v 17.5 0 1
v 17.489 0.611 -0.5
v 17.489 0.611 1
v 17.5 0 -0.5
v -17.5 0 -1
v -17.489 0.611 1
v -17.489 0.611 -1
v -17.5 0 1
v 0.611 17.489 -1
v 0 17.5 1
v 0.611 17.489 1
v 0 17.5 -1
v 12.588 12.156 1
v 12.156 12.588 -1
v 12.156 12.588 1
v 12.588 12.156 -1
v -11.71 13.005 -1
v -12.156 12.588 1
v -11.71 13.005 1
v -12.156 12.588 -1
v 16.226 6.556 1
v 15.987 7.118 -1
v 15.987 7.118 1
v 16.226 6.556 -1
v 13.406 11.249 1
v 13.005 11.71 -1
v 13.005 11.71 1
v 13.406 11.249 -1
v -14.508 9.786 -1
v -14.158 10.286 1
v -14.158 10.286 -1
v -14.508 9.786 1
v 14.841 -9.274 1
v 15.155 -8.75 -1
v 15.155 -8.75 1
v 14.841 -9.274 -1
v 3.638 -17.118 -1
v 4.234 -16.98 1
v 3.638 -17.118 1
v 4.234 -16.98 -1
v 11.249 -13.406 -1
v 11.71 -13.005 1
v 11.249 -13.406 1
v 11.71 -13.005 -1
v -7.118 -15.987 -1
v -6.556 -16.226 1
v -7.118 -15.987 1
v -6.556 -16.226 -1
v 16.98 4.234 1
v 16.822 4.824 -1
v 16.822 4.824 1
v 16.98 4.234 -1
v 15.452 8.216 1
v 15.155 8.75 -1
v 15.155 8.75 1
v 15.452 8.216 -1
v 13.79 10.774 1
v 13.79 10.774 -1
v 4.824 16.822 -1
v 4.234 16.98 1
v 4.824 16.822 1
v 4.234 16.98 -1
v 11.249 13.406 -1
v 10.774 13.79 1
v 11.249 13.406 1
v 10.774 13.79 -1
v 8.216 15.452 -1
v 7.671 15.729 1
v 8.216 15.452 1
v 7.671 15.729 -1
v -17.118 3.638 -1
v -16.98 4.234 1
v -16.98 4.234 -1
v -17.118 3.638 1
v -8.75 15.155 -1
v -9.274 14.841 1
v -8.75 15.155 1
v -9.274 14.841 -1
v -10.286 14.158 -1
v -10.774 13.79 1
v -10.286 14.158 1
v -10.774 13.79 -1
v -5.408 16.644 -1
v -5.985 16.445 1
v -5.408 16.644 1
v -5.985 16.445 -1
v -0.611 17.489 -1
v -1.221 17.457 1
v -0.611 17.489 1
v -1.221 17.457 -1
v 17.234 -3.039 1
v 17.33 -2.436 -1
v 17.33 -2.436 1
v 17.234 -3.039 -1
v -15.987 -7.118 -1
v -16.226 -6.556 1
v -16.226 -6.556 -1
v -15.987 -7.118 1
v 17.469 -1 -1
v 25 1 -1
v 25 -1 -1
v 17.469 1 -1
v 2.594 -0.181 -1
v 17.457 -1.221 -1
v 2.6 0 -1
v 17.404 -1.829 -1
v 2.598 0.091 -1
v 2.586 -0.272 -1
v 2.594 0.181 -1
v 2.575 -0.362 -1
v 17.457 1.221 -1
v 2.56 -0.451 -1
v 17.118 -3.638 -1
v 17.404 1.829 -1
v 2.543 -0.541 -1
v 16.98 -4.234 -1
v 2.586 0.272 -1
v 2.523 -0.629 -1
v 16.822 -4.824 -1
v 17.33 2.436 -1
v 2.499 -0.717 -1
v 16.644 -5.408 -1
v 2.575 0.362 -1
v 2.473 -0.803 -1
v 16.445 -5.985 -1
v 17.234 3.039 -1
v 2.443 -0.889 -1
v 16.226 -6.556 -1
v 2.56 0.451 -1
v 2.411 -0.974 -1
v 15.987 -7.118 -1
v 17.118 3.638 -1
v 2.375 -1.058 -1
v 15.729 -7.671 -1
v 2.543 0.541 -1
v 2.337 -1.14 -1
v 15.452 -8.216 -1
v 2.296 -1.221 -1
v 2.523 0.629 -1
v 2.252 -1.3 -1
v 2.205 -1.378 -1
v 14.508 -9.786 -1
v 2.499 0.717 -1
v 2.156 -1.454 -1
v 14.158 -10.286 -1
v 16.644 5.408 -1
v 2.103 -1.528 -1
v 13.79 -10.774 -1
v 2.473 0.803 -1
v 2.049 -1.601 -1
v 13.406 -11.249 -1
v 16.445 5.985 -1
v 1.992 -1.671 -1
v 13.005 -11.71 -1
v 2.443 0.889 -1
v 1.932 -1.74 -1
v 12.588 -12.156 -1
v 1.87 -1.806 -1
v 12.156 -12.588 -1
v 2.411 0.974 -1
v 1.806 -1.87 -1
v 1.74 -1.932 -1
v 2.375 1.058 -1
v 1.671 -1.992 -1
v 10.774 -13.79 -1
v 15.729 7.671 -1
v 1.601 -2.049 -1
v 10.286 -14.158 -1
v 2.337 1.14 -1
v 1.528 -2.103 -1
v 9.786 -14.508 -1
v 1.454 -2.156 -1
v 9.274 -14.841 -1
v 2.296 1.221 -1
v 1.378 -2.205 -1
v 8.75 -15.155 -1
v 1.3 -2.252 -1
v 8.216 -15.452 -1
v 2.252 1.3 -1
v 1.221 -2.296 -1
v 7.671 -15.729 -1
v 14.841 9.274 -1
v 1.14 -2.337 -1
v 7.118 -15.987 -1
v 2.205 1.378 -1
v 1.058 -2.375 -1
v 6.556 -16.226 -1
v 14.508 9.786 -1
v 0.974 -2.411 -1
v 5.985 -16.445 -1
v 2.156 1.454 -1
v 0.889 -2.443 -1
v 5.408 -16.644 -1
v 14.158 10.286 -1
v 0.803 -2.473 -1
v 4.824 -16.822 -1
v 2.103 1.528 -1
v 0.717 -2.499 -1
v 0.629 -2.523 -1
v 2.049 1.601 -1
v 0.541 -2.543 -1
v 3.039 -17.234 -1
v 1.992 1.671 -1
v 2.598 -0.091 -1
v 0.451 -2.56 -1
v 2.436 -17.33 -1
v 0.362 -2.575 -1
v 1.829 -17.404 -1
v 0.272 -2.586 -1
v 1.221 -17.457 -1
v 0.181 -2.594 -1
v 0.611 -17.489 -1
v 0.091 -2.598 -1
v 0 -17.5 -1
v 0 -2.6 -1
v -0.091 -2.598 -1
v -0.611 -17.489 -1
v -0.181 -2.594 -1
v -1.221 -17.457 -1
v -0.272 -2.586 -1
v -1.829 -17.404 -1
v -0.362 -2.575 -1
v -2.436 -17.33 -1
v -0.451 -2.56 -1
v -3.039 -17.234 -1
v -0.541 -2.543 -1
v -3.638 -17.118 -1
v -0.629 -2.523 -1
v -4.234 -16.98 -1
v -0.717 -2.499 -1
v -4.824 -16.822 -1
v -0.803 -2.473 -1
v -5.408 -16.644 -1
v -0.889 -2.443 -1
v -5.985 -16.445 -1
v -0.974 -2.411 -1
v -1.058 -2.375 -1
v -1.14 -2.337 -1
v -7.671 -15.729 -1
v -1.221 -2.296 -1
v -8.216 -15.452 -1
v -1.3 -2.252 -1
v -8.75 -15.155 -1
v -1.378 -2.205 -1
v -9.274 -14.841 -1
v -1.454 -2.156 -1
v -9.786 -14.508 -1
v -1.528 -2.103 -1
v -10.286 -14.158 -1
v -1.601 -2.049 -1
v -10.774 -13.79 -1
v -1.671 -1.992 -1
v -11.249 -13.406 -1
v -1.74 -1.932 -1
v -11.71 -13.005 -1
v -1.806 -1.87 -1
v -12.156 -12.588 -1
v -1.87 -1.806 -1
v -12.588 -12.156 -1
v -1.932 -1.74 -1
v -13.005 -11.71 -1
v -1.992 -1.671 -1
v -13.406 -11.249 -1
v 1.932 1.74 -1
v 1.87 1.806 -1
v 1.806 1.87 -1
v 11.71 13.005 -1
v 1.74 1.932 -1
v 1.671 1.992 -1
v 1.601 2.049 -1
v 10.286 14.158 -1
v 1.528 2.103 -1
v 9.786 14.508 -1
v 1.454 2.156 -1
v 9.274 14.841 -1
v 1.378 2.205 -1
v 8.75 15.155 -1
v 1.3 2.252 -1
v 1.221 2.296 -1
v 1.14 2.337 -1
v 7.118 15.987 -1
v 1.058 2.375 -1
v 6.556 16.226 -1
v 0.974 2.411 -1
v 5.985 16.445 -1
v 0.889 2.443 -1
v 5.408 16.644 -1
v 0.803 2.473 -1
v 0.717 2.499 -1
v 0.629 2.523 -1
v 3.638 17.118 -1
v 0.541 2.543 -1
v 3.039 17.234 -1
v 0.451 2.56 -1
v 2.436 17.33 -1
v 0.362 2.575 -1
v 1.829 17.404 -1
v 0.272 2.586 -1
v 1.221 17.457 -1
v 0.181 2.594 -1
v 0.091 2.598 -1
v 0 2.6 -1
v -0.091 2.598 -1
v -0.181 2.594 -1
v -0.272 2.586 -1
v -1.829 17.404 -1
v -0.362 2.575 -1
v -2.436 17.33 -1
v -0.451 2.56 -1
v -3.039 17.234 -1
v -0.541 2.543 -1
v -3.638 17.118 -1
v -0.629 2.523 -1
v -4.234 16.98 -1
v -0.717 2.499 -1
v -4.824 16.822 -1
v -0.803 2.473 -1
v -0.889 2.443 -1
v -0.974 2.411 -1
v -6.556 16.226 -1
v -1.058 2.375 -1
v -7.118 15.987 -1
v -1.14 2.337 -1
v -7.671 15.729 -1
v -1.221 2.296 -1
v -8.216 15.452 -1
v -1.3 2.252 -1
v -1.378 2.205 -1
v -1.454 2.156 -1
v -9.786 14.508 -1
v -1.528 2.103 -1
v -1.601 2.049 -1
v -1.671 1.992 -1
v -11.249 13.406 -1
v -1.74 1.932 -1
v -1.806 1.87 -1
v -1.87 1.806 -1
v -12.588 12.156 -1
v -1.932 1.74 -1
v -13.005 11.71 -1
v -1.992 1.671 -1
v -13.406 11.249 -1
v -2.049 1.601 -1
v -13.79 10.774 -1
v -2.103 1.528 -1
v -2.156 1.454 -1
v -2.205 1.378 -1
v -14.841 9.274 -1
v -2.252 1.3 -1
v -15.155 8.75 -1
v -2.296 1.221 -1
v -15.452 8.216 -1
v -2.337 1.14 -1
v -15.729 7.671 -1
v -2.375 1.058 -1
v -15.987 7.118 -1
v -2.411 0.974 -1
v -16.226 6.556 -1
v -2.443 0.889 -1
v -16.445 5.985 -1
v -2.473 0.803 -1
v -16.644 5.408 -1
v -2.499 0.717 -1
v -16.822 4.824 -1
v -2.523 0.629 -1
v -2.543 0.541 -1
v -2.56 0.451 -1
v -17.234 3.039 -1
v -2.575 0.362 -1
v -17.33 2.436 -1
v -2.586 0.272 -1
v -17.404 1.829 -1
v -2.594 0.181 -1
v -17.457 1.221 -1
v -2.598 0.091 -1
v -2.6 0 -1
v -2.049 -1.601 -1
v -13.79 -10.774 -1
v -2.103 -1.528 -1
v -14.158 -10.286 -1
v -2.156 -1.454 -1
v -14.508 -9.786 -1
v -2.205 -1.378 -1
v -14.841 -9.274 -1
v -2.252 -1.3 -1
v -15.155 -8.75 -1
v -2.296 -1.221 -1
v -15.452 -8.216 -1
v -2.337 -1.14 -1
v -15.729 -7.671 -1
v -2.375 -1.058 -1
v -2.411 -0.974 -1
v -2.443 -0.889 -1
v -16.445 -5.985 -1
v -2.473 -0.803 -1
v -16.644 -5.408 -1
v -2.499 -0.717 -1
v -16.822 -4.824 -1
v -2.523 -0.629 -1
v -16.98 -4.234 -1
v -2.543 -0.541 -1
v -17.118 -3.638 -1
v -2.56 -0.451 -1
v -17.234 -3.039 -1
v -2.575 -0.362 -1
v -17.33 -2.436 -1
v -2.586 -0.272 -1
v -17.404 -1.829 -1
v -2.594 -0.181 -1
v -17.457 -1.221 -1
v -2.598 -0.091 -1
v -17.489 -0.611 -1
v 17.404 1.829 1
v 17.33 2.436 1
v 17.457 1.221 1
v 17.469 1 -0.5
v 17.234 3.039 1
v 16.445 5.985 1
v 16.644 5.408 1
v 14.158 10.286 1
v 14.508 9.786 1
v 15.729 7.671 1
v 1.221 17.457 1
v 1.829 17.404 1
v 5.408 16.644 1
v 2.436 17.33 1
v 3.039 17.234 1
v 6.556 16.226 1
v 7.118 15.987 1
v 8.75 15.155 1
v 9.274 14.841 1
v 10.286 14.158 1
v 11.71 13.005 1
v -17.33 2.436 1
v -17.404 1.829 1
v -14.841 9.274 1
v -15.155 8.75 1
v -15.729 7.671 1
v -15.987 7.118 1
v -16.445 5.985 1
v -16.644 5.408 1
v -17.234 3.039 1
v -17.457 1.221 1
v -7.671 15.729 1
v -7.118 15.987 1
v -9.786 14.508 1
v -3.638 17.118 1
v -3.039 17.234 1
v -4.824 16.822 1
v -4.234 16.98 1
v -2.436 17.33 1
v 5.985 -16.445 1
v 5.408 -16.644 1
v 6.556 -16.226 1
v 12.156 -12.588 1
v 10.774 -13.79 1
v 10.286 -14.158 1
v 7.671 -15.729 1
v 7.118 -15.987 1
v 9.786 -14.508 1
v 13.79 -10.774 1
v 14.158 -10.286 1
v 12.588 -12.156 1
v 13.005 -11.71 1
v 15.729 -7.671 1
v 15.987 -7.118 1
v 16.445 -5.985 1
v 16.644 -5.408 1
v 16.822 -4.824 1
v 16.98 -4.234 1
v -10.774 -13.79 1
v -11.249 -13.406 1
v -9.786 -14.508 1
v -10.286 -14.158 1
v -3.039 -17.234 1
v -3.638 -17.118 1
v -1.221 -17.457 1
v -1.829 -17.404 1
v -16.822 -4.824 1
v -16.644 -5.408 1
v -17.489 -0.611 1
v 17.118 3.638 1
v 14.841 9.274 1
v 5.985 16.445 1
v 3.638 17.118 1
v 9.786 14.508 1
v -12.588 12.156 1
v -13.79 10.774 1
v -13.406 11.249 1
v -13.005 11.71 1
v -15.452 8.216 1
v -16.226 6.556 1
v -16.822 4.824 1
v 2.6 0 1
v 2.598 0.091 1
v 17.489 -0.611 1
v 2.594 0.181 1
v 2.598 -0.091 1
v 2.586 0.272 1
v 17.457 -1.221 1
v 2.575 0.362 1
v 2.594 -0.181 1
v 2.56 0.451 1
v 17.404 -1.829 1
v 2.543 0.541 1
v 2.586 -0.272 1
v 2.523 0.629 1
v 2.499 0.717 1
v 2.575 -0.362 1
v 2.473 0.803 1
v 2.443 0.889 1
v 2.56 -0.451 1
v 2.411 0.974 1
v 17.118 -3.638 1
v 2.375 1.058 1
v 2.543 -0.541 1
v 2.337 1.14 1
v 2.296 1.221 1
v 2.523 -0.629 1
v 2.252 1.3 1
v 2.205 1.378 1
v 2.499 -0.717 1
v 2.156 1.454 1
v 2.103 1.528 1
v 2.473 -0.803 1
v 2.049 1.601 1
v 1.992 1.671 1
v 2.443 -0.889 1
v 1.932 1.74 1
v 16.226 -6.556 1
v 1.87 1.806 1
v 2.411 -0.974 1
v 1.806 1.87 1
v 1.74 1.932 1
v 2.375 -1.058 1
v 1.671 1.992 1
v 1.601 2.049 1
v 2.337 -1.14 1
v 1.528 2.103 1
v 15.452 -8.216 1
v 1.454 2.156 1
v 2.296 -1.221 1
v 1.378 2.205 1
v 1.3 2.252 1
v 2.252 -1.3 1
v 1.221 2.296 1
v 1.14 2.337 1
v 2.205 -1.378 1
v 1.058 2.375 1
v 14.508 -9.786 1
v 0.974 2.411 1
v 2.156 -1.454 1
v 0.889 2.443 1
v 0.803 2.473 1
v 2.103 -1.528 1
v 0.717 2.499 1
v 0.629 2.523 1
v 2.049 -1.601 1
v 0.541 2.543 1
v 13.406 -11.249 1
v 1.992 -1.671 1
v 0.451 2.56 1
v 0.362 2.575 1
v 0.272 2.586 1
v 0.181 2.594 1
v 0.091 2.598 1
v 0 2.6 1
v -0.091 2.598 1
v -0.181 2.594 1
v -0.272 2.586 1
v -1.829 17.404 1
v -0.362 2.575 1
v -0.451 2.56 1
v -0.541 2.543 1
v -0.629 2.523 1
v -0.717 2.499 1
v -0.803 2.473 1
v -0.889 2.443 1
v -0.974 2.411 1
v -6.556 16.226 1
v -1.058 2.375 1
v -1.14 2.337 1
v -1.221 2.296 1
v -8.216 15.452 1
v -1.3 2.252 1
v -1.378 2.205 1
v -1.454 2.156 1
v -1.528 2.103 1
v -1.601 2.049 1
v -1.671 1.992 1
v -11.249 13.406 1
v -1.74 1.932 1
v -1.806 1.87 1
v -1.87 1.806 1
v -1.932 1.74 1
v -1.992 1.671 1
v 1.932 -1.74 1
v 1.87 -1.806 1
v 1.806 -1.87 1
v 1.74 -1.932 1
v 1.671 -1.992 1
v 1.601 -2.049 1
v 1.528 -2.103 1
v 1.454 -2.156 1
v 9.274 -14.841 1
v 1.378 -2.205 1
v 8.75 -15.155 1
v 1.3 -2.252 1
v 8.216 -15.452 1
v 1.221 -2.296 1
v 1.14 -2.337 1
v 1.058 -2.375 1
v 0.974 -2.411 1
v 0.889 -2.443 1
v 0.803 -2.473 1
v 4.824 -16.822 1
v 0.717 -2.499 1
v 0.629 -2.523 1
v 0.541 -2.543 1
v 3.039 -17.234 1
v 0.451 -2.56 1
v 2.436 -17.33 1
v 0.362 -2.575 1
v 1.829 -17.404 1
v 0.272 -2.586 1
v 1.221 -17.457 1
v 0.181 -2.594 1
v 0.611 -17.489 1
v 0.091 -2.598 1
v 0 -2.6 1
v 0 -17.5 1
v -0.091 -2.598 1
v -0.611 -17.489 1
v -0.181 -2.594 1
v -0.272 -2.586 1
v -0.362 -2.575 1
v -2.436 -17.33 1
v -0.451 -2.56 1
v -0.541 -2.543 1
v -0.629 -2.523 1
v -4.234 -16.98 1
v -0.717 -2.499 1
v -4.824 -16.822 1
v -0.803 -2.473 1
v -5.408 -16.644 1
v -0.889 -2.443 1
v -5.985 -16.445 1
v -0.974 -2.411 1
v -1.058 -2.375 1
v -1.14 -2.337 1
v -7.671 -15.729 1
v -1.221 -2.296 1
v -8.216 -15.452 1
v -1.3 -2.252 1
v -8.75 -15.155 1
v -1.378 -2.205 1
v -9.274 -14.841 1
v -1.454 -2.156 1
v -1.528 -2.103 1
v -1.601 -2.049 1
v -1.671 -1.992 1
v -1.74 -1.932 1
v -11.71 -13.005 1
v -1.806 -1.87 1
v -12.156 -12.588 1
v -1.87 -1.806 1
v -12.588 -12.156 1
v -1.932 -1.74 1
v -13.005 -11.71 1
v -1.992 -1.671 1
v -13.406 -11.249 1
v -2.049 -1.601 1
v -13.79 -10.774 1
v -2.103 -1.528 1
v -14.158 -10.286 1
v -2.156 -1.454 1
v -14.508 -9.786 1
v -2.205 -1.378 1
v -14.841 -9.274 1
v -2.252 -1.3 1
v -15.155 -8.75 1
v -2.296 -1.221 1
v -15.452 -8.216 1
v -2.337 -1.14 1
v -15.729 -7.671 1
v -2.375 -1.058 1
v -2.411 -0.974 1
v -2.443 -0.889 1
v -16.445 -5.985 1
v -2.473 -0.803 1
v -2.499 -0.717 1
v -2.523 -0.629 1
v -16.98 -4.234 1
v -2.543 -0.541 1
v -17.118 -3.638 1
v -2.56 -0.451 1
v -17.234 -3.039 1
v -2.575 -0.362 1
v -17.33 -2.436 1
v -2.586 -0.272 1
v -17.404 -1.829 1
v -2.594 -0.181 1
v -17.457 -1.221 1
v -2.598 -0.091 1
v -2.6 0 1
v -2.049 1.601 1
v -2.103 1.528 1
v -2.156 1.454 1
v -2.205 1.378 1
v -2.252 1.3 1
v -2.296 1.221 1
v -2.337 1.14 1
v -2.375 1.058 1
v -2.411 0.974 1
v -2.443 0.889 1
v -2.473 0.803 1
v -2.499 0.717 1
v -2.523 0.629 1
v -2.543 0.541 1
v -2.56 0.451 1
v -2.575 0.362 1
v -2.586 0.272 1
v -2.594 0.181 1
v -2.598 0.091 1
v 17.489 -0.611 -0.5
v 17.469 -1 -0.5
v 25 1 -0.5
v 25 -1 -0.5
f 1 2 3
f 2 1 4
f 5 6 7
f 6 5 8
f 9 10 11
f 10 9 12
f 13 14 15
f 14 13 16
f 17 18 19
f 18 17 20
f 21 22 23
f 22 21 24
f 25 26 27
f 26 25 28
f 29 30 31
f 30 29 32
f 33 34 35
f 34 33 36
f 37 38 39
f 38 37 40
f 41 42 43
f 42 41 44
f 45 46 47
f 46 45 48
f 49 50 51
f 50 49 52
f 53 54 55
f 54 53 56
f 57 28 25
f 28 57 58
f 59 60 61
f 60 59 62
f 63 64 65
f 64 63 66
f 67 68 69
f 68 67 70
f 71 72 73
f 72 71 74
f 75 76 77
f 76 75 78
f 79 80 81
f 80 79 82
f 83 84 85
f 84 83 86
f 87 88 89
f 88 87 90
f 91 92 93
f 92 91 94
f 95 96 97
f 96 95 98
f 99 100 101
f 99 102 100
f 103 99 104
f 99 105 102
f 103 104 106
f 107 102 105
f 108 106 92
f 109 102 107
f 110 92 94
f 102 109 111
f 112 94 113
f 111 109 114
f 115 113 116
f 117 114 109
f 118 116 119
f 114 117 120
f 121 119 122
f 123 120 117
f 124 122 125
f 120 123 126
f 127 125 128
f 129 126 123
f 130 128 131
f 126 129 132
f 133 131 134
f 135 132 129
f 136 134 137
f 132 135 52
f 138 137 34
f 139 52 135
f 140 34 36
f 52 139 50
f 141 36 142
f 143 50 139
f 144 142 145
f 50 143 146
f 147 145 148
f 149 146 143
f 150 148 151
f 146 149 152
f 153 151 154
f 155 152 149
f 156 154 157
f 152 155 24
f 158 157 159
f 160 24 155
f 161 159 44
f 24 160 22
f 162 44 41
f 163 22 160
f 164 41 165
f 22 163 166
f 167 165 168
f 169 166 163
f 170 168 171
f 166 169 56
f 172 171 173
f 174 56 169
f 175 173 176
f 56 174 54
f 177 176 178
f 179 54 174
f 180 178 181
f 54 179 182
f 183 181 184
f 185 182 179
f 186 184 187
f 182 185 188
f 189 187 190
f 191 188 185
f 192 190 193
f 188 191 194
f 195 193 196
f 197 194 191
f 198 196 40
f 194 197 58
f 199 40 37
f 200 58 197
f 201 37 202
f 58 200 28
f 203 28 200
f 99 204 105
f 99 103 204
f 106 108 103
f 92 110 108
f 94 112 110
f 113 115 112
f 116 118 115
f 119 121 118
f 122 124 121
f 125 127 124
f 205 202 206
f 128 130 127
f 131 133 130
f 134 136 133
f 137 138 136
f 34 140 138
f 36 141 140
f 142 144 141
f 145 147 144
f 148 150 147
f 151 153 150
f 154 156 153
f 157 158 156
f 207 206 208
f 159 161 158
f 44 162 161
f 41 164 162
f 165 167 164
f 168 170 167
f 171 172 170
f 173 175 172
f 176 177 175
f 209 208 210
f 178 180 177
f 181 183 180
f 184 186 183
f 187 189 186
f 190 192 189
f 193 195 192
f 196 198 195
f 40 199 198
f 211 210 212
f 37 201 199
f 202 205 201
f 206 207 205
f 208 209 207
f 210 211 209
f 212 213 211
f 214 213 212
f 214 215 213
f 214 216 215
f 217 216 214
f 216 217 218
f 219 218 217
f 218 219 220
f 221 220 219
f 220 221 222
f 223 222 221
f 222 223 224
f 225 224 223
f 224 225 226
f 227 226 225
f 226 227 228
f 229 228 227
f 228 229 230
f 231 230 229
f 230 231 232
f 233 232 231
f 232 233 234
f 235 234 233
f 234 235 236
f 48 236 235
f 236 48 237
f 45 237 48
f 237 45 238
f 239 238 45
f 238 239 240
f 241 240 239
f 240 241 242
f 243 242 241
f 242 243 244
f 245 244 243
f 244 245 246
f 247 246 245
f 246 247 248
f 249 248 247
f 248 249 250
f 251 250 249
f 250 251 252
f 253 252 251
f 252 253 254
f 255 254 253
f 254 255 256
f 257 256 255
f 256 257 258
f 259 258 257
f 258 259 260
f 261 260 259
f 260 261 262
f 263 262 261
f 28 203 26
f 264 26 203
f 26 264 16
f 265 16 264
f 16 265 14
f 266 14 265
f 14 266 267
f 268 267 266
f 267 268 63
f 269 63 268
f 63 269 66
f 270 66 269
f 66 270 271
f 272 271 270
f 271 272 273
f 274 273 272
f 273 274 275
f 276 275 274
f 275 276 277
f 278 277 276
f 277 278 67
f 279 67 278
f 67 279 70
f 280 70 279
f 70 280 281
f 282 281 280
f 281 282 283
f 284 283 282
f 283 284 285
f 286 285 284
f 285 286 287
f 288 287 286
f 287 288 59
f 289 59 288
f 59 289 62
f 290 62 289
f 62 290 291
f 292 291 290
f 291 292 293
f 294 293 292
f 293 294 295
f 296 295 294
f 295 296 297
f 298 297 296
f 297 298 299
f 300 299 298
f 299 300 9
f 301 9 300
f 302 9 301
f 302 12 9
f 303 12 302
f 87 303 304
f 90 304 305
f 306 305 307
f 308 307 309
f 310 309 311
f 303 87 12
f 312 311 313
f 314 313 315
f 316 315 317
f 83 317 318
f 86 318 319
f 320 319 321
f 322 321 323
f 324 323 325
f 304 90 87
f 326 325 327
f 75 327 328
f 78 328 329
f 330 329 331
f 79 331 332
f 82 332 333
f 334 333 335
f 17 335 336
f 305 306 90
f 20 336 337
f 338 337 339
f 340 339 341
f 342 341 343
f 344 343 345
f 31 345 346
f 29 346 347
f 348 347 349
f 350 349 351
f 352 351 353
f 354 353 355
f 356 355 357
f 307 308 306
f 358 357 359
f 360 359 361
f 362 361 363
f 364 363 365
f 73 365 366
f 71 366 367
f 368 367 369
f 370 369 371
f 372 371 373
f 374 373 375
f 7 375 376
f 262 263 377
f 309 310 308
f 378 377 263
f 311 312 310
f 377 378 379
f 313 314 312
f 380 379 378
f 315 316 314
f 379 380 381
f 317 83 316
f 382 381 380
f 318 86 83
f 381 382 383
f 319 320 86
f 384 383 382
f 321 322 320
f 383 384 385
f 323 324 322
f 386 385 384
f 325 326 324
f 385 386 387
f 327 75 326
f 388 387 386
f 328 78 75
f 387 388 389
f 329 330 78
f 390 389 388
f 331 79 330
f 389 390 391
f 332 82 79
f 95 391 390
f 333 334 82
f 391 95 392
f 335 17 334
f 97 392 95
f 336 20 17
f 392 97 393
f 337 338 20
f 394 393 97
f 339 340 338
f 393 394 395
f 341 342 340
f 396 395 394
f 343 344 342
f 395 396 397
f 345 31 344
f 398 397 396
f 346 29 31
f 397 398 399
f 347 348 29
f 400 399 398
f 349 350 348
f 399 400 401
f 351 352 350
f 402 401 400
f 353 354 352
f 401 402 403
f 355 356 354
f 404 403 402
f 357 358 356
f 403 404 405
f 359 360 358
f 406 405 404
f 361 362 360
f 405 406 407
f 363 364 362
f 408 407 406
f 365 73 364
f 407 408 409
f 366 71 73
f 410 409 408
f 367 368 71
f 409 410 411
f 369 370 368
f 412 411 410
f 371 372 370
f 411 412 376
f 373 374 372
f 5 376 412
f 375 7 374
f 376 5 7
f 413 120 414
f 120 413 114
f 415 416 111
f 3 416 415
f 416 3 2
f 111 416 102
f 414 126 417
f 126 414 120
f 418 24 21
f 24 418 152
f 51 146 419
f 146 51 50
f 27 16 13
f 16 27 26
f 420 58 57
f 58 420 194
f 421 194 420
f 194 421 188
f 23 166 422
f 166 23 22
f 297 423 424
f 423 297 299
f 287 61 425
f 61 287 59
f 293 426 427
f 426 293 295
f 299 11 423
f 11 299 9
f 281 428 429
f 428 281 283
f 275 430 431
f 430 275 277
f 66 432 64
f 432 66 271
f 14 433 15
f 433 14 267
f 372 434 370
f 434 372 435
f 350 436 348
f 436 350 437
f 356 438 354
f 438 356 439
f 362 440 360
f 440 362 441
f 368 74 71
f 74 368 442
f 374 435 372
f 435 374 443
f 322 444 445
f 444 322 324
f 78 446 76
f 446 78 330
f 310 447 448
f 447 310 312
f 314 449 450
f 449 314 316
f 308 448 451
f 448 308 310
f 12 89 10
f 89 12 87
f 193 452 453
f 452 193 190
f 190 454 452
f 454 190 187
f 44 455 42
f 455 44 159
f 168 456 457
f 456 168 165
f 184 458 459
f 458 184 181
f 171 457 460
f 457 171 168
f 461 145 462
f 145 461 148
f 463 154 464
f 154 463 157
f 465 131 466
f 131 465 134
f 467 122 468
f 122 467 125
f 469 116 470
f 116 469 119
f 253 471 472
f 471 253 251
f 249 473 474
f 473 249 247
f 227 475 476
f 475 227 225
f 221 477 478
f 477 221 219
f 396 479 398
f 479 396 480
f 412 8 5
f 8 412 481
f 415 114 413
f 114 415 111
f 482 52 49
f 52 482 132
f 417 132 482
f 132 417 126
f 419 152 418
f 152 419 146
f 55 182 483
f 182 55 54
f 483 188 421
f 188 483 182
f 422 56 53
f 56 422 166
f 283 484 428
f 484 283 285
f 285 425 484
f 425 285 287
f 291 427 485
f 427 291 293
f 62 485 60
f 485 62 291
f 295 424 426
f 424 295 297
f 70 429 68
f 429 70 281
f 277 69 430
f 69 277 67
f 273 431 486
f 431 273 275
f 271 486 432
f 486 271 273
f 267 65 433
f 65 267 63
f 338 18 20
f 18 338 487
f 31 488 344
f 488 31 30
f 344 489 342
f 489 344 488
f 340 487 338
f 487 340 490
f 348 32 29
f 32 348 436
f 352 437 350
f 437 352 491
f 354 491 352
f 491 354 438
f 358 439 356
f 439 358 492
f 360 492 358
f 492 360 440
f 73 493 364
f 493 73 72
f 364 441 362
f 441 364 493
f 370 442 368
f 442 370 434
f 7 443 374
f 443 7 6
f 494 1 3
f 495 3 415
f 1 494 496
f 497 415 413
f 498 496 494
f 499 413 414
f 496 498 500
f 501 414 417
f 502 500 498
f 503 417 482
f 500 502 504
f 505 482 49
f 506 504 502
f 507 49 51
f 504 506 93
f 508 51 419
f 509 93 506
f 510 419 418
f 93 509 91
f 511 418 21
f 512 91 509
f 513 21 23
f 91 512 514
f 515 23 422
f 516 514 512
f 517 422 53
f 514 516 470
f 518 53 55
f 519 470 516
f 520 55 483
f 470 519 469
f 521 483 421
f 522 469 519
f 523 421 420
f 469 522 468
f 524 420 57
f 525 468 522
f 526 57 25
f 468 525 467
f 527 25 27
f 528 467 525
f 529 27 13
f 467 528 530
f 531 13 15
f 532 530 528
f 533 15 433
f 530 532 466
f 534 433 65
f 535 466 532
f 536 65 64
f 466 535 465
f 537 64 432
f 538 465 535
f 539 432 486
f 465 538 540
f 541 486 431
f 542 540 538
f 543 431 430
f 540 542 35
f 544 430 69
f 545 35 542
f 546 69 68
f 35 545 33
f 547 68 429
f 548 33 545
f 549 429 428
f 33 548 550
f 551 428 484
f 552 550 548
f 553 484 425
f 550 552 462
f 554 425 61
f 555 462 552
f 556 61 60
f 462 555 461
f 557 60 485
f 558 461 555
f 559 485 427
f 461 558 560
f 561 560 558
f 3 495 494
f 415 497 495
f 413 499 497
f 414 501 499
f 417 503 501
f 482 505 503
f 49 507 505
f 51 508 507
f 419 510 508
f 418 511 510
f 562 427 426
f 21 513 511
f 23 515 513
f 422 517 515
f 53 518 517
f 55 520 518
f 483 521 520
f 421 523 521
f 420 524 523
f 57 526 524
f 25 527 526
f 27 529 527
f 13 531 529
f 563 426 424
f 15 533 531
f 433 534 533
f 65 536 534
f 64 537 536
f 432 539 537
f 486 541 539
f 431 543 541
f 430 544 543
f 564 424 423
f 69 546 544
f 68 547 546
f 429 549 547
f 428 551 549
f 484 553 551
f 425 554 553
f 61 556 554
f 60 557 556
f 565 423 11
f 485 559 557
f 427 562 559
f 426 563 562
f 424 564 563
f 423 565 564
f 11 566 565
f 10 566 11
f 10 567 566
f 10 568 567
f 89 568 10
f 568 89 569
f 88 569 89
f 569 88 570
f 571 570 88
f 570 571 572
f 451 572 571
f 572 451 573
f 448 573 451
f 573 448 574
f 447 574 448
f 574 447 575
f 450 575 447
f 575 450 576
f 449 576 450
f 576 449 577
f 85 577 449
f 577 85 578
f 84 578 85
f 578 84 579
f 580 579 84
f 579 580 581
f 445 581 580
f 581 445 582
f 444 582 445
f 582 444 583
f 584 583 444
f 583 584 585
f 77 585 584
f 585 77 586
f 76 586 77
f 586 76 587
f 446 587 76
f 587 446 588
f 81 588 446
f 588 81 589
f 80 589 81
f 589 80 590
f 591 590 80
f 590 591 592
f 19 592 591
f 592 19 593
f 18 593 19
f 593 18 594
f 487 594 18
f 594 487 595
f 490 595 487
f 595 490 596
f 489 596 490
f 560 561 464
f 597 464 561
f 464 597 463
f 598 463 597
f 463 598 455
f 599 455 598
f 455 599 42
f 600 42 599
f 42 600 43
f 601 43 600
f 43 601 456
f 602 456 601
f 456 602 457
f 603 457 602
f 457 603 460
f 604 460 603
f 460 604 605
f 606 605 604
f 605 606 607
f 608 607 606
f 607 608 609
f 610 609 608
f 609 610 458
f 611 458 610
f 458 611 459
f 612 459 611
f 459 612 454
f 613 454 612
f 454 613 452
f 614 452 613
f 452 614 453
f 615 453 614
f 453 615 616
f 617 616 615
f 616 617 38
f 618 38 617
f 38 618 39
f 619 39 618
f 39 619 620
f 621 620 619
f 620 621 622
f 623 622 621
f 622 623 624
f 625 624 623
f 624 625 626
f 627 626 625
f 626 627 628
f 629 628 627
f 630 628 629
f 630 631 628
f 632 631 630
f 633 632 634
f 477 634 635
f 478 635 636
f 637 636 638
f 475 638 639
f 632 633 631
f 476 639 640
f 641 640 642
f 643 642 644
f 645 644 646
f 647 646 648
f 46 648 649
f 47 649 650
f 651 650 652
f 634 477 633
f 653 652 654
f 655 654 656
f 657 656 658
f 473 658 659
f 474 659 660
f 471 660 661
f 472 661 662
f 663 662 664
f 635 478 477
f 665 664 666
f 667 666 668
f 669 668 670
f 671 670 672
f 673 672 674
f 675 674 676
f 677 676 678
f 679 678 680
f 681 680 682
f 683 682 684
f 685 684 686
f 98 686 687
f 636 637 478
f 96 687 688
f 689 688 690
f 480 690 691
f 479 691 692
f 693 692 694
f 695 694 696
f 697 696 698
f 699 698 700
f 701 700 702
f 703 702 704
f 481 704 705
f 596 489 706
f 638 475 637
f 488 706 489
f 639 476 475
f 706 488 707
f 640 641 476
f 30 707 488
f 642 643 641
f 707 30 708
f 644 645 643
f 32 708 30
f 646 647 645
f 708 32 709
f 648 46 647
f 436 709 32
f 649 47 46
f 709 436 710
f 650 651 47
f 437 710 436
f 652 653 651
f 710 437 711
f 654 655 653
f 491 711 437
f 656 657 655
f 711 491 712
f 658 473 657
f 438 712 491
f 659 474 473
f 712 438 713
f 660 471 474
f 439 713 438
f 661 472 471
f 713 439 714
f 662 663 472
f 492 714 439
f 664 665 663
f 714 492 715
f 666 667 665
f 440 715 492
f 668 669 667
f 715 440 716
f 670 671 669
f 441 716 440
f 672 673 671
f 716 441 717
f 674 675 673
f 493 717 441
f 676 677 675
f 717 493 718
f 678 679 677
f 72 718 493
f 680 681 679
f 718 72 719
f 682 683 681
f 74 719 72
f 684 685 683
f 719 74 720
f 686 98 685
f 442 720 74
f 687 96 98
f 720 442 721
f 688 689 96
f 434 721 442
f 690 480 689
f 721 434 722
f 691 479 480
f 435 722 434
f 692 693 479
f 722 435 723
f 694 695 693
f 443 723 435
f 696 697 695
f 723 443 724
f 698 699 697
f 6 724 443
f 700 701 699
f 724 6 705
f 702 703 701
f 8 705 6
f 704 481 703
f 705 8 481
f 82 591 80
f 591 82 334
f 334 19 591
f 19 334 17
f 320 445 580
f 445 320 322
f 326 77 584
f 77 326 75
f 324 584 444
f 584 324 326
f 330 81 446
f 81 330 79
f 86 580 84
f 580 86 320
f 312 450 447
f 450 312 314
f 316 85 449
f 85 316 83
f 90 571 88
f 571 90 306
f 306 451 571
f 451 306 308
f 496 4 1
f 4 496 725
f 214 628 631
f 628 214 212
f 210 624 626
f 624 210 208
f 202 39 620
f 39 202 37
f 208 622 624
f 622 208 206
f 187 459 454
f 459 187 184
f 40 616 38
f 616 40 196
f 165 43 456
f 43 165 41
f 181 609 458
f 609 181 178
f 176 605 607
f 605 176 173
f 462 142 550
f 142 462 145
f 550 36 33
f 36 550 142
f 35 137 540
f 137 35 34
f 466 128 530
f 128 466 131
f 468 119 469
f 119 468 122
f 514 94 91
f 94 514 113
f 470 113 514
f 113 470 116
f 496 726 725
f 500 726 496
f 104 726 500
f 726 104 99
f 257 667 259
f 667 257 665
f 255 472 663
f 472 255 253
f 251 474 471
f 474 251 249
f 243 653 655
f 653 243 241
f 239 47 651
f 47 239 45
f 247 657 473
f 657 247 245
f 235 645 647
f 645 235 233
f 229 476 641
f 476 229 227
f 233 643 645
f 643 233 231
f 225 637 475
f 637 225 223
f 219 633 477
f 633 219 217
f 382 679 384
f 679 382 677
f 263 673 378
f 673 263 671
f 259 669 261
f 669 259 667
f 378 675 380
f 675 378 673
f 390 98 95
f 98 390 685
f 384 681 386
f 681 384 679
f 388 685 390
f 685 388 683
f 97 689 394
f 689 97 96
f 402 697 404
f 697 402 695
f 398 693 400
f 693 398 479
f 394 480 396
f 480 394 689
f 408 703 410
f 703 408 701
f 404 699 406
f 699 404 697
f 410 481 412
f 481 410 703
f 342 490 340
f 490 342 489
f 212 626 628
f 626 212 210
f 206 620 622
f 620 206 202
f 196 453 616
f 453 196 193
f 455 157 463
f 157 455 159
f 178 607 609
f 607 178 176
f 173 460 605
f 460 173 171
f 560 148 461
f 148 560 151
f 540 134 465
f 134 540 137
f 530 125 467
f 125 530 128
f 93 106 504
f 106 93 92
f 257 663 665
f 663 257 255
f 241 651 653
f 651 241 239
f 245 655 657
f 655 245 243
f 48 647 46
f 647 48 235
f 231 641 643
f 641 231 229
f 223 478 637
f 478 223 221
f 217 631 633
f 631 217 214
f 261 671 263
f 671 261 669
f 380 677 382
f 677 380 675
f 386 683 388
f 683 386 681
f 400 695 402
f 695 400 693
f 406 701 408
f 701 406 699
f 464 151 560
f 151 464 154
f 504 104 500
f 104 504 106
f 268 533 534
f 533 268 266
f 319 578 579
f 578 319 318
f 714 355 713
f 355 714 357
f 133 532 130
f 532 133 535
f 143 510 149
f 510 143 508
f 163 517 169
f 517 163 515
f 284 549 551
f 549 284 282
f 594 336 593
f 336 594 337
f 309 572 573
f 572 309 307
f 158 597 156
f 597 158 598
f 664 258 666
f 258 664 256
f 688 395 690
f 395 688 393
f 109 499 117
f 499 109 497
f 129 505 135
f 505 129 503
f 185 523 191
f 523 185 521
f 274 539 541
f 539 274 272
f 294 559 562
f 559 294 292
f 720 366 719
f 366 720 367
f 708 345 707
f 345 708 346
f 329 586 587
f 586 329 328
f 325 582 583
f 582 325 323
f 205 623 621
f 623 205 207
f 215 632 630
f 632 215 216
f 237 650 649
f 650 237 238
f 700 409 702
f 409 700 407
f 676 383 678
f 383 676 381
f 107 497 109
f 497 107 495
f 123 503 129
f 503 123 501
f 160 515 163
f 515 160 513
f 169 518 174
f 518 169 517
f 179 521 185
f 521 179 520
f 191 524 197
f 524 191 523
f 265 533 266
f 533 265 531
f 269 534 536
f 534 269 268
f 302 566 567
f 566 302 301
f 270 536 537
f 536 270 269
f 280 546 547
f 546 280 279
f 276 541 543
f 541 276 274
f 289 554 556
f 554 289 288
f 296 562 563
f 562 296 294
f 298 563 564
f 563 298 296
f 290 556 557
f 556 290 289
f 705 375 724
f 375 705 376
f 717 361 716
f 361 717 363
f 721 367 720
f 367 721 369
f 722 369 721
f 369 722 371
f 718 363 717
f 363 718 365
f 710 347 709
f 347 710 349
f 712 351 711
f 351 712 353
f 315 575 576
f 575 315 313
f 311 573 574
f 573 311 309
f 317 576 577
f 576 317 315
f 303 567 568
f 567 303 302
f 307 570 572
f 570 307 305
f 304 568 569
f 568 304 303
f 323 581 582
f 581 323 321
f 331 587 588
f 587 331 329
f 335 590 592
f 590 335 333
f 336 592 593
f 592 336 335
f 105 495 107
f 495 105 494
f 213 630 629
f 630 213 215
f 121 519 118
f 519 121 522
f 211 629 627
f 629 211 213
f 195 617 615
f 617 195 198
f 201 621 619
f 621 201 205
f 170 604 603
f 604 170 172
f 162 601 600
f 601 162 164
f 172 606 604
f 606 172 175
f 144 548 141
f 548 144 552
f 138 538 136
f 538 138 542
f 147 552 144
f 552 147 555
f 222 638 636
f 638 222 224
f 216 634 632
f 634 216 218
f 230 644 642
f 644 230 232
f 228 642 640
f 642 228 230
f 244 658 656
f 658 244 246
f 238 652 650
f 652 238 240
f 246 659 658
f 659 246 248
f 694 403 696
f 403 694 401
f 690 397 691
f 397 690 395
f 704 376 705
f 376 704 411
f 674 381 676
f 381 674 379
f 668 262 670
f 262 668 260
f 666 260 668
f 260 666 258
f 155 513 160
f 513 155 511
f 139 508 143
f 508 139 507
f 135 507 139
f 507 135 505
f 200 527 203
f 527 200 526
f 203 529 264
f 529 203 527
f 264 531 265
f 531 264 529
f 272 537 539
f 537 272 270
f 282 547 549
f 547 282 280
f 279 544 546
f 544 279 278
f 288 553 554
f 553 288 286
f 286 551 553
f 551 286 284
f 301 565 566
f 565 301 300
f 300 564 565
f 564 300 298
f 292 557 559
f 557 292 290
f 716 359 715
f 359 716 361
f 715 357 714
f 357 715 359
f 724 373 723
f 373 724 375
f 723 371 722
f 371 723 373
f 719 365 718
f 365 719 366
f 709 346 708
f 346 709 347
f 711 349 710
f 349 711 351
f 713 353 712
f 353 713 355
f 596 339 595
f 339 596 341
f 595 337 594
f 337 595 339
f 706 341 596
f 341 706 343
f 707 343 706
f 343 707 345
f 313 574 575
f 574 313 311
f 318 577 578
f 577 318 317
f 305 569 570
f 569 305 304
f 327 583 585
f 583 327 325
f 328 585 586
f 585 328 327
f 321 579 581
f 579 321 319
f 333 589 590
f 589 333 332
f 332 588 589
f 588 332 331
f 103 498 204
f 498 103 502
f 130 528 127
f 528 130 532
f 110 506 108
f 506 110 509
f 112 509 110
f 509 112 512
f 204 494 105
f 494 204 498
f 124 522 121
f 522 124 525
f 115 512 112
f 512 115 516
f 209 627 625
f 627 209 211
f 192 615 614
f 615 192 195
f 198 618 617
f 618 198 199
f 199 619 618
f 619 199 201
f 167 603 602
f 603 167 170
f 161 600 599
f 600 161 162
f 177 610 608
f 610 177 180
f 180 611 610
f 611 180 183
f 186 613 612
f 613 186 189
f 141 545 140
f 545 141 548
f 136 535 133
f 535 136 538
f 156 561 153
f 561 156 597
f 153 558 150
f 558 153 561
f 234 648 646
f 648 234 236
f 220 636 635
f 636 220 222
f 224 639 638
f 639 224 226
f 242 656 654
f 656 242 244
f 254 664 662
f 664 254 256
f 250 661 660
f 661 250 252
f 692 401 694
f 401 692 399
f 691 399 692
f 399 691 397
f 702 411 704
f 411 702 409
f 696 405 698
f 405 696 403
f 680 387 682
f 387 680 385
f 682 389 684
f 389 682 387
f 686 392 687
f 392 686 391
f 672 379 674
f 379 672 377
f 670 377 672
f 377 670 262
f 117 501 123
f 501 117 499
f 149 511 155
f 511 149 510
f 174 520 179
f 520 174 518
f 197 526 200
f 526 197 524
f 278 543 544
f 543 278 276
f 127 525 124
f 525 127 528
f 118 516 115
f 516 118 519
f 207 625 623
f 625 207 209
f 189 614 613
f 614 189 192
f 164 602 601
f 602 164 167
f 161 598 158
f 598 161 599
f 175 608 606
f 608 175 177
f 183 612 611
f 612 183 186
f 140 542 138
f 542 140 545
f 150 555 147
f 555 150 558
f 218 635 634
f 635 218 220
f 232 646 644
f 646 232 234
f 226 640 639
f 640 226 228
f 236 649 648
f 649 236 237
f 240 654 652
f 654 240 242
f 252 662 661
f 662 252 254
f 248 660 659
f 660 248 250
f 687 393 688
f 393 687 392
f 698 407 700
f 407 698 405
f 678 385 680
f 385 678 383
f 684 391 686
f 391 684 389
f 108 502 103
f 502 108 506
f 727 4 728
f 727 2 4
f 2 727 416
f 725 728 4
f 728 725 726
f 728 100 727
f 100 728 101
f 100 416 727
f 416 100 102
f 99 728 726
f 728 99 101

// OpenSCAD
//cube([120,120,3], center = true);
//translate([-45,-45,0])cylinder(h = 3, r=15, $fn = 180, center = true);
//rotate_extrude(convexity = 10, $fn = A) translate([20+1.5, 0, 0])circle(d = 3, $fn = B);


difference(){
cylinder(h = 2, d=35, $fn = 180, center = true);

cylinder(h = 3, d=5.2, $fn = 180, center = true);

}

translate([20,0,-0.75]) cube([10,2,0.5], center = true);
 
